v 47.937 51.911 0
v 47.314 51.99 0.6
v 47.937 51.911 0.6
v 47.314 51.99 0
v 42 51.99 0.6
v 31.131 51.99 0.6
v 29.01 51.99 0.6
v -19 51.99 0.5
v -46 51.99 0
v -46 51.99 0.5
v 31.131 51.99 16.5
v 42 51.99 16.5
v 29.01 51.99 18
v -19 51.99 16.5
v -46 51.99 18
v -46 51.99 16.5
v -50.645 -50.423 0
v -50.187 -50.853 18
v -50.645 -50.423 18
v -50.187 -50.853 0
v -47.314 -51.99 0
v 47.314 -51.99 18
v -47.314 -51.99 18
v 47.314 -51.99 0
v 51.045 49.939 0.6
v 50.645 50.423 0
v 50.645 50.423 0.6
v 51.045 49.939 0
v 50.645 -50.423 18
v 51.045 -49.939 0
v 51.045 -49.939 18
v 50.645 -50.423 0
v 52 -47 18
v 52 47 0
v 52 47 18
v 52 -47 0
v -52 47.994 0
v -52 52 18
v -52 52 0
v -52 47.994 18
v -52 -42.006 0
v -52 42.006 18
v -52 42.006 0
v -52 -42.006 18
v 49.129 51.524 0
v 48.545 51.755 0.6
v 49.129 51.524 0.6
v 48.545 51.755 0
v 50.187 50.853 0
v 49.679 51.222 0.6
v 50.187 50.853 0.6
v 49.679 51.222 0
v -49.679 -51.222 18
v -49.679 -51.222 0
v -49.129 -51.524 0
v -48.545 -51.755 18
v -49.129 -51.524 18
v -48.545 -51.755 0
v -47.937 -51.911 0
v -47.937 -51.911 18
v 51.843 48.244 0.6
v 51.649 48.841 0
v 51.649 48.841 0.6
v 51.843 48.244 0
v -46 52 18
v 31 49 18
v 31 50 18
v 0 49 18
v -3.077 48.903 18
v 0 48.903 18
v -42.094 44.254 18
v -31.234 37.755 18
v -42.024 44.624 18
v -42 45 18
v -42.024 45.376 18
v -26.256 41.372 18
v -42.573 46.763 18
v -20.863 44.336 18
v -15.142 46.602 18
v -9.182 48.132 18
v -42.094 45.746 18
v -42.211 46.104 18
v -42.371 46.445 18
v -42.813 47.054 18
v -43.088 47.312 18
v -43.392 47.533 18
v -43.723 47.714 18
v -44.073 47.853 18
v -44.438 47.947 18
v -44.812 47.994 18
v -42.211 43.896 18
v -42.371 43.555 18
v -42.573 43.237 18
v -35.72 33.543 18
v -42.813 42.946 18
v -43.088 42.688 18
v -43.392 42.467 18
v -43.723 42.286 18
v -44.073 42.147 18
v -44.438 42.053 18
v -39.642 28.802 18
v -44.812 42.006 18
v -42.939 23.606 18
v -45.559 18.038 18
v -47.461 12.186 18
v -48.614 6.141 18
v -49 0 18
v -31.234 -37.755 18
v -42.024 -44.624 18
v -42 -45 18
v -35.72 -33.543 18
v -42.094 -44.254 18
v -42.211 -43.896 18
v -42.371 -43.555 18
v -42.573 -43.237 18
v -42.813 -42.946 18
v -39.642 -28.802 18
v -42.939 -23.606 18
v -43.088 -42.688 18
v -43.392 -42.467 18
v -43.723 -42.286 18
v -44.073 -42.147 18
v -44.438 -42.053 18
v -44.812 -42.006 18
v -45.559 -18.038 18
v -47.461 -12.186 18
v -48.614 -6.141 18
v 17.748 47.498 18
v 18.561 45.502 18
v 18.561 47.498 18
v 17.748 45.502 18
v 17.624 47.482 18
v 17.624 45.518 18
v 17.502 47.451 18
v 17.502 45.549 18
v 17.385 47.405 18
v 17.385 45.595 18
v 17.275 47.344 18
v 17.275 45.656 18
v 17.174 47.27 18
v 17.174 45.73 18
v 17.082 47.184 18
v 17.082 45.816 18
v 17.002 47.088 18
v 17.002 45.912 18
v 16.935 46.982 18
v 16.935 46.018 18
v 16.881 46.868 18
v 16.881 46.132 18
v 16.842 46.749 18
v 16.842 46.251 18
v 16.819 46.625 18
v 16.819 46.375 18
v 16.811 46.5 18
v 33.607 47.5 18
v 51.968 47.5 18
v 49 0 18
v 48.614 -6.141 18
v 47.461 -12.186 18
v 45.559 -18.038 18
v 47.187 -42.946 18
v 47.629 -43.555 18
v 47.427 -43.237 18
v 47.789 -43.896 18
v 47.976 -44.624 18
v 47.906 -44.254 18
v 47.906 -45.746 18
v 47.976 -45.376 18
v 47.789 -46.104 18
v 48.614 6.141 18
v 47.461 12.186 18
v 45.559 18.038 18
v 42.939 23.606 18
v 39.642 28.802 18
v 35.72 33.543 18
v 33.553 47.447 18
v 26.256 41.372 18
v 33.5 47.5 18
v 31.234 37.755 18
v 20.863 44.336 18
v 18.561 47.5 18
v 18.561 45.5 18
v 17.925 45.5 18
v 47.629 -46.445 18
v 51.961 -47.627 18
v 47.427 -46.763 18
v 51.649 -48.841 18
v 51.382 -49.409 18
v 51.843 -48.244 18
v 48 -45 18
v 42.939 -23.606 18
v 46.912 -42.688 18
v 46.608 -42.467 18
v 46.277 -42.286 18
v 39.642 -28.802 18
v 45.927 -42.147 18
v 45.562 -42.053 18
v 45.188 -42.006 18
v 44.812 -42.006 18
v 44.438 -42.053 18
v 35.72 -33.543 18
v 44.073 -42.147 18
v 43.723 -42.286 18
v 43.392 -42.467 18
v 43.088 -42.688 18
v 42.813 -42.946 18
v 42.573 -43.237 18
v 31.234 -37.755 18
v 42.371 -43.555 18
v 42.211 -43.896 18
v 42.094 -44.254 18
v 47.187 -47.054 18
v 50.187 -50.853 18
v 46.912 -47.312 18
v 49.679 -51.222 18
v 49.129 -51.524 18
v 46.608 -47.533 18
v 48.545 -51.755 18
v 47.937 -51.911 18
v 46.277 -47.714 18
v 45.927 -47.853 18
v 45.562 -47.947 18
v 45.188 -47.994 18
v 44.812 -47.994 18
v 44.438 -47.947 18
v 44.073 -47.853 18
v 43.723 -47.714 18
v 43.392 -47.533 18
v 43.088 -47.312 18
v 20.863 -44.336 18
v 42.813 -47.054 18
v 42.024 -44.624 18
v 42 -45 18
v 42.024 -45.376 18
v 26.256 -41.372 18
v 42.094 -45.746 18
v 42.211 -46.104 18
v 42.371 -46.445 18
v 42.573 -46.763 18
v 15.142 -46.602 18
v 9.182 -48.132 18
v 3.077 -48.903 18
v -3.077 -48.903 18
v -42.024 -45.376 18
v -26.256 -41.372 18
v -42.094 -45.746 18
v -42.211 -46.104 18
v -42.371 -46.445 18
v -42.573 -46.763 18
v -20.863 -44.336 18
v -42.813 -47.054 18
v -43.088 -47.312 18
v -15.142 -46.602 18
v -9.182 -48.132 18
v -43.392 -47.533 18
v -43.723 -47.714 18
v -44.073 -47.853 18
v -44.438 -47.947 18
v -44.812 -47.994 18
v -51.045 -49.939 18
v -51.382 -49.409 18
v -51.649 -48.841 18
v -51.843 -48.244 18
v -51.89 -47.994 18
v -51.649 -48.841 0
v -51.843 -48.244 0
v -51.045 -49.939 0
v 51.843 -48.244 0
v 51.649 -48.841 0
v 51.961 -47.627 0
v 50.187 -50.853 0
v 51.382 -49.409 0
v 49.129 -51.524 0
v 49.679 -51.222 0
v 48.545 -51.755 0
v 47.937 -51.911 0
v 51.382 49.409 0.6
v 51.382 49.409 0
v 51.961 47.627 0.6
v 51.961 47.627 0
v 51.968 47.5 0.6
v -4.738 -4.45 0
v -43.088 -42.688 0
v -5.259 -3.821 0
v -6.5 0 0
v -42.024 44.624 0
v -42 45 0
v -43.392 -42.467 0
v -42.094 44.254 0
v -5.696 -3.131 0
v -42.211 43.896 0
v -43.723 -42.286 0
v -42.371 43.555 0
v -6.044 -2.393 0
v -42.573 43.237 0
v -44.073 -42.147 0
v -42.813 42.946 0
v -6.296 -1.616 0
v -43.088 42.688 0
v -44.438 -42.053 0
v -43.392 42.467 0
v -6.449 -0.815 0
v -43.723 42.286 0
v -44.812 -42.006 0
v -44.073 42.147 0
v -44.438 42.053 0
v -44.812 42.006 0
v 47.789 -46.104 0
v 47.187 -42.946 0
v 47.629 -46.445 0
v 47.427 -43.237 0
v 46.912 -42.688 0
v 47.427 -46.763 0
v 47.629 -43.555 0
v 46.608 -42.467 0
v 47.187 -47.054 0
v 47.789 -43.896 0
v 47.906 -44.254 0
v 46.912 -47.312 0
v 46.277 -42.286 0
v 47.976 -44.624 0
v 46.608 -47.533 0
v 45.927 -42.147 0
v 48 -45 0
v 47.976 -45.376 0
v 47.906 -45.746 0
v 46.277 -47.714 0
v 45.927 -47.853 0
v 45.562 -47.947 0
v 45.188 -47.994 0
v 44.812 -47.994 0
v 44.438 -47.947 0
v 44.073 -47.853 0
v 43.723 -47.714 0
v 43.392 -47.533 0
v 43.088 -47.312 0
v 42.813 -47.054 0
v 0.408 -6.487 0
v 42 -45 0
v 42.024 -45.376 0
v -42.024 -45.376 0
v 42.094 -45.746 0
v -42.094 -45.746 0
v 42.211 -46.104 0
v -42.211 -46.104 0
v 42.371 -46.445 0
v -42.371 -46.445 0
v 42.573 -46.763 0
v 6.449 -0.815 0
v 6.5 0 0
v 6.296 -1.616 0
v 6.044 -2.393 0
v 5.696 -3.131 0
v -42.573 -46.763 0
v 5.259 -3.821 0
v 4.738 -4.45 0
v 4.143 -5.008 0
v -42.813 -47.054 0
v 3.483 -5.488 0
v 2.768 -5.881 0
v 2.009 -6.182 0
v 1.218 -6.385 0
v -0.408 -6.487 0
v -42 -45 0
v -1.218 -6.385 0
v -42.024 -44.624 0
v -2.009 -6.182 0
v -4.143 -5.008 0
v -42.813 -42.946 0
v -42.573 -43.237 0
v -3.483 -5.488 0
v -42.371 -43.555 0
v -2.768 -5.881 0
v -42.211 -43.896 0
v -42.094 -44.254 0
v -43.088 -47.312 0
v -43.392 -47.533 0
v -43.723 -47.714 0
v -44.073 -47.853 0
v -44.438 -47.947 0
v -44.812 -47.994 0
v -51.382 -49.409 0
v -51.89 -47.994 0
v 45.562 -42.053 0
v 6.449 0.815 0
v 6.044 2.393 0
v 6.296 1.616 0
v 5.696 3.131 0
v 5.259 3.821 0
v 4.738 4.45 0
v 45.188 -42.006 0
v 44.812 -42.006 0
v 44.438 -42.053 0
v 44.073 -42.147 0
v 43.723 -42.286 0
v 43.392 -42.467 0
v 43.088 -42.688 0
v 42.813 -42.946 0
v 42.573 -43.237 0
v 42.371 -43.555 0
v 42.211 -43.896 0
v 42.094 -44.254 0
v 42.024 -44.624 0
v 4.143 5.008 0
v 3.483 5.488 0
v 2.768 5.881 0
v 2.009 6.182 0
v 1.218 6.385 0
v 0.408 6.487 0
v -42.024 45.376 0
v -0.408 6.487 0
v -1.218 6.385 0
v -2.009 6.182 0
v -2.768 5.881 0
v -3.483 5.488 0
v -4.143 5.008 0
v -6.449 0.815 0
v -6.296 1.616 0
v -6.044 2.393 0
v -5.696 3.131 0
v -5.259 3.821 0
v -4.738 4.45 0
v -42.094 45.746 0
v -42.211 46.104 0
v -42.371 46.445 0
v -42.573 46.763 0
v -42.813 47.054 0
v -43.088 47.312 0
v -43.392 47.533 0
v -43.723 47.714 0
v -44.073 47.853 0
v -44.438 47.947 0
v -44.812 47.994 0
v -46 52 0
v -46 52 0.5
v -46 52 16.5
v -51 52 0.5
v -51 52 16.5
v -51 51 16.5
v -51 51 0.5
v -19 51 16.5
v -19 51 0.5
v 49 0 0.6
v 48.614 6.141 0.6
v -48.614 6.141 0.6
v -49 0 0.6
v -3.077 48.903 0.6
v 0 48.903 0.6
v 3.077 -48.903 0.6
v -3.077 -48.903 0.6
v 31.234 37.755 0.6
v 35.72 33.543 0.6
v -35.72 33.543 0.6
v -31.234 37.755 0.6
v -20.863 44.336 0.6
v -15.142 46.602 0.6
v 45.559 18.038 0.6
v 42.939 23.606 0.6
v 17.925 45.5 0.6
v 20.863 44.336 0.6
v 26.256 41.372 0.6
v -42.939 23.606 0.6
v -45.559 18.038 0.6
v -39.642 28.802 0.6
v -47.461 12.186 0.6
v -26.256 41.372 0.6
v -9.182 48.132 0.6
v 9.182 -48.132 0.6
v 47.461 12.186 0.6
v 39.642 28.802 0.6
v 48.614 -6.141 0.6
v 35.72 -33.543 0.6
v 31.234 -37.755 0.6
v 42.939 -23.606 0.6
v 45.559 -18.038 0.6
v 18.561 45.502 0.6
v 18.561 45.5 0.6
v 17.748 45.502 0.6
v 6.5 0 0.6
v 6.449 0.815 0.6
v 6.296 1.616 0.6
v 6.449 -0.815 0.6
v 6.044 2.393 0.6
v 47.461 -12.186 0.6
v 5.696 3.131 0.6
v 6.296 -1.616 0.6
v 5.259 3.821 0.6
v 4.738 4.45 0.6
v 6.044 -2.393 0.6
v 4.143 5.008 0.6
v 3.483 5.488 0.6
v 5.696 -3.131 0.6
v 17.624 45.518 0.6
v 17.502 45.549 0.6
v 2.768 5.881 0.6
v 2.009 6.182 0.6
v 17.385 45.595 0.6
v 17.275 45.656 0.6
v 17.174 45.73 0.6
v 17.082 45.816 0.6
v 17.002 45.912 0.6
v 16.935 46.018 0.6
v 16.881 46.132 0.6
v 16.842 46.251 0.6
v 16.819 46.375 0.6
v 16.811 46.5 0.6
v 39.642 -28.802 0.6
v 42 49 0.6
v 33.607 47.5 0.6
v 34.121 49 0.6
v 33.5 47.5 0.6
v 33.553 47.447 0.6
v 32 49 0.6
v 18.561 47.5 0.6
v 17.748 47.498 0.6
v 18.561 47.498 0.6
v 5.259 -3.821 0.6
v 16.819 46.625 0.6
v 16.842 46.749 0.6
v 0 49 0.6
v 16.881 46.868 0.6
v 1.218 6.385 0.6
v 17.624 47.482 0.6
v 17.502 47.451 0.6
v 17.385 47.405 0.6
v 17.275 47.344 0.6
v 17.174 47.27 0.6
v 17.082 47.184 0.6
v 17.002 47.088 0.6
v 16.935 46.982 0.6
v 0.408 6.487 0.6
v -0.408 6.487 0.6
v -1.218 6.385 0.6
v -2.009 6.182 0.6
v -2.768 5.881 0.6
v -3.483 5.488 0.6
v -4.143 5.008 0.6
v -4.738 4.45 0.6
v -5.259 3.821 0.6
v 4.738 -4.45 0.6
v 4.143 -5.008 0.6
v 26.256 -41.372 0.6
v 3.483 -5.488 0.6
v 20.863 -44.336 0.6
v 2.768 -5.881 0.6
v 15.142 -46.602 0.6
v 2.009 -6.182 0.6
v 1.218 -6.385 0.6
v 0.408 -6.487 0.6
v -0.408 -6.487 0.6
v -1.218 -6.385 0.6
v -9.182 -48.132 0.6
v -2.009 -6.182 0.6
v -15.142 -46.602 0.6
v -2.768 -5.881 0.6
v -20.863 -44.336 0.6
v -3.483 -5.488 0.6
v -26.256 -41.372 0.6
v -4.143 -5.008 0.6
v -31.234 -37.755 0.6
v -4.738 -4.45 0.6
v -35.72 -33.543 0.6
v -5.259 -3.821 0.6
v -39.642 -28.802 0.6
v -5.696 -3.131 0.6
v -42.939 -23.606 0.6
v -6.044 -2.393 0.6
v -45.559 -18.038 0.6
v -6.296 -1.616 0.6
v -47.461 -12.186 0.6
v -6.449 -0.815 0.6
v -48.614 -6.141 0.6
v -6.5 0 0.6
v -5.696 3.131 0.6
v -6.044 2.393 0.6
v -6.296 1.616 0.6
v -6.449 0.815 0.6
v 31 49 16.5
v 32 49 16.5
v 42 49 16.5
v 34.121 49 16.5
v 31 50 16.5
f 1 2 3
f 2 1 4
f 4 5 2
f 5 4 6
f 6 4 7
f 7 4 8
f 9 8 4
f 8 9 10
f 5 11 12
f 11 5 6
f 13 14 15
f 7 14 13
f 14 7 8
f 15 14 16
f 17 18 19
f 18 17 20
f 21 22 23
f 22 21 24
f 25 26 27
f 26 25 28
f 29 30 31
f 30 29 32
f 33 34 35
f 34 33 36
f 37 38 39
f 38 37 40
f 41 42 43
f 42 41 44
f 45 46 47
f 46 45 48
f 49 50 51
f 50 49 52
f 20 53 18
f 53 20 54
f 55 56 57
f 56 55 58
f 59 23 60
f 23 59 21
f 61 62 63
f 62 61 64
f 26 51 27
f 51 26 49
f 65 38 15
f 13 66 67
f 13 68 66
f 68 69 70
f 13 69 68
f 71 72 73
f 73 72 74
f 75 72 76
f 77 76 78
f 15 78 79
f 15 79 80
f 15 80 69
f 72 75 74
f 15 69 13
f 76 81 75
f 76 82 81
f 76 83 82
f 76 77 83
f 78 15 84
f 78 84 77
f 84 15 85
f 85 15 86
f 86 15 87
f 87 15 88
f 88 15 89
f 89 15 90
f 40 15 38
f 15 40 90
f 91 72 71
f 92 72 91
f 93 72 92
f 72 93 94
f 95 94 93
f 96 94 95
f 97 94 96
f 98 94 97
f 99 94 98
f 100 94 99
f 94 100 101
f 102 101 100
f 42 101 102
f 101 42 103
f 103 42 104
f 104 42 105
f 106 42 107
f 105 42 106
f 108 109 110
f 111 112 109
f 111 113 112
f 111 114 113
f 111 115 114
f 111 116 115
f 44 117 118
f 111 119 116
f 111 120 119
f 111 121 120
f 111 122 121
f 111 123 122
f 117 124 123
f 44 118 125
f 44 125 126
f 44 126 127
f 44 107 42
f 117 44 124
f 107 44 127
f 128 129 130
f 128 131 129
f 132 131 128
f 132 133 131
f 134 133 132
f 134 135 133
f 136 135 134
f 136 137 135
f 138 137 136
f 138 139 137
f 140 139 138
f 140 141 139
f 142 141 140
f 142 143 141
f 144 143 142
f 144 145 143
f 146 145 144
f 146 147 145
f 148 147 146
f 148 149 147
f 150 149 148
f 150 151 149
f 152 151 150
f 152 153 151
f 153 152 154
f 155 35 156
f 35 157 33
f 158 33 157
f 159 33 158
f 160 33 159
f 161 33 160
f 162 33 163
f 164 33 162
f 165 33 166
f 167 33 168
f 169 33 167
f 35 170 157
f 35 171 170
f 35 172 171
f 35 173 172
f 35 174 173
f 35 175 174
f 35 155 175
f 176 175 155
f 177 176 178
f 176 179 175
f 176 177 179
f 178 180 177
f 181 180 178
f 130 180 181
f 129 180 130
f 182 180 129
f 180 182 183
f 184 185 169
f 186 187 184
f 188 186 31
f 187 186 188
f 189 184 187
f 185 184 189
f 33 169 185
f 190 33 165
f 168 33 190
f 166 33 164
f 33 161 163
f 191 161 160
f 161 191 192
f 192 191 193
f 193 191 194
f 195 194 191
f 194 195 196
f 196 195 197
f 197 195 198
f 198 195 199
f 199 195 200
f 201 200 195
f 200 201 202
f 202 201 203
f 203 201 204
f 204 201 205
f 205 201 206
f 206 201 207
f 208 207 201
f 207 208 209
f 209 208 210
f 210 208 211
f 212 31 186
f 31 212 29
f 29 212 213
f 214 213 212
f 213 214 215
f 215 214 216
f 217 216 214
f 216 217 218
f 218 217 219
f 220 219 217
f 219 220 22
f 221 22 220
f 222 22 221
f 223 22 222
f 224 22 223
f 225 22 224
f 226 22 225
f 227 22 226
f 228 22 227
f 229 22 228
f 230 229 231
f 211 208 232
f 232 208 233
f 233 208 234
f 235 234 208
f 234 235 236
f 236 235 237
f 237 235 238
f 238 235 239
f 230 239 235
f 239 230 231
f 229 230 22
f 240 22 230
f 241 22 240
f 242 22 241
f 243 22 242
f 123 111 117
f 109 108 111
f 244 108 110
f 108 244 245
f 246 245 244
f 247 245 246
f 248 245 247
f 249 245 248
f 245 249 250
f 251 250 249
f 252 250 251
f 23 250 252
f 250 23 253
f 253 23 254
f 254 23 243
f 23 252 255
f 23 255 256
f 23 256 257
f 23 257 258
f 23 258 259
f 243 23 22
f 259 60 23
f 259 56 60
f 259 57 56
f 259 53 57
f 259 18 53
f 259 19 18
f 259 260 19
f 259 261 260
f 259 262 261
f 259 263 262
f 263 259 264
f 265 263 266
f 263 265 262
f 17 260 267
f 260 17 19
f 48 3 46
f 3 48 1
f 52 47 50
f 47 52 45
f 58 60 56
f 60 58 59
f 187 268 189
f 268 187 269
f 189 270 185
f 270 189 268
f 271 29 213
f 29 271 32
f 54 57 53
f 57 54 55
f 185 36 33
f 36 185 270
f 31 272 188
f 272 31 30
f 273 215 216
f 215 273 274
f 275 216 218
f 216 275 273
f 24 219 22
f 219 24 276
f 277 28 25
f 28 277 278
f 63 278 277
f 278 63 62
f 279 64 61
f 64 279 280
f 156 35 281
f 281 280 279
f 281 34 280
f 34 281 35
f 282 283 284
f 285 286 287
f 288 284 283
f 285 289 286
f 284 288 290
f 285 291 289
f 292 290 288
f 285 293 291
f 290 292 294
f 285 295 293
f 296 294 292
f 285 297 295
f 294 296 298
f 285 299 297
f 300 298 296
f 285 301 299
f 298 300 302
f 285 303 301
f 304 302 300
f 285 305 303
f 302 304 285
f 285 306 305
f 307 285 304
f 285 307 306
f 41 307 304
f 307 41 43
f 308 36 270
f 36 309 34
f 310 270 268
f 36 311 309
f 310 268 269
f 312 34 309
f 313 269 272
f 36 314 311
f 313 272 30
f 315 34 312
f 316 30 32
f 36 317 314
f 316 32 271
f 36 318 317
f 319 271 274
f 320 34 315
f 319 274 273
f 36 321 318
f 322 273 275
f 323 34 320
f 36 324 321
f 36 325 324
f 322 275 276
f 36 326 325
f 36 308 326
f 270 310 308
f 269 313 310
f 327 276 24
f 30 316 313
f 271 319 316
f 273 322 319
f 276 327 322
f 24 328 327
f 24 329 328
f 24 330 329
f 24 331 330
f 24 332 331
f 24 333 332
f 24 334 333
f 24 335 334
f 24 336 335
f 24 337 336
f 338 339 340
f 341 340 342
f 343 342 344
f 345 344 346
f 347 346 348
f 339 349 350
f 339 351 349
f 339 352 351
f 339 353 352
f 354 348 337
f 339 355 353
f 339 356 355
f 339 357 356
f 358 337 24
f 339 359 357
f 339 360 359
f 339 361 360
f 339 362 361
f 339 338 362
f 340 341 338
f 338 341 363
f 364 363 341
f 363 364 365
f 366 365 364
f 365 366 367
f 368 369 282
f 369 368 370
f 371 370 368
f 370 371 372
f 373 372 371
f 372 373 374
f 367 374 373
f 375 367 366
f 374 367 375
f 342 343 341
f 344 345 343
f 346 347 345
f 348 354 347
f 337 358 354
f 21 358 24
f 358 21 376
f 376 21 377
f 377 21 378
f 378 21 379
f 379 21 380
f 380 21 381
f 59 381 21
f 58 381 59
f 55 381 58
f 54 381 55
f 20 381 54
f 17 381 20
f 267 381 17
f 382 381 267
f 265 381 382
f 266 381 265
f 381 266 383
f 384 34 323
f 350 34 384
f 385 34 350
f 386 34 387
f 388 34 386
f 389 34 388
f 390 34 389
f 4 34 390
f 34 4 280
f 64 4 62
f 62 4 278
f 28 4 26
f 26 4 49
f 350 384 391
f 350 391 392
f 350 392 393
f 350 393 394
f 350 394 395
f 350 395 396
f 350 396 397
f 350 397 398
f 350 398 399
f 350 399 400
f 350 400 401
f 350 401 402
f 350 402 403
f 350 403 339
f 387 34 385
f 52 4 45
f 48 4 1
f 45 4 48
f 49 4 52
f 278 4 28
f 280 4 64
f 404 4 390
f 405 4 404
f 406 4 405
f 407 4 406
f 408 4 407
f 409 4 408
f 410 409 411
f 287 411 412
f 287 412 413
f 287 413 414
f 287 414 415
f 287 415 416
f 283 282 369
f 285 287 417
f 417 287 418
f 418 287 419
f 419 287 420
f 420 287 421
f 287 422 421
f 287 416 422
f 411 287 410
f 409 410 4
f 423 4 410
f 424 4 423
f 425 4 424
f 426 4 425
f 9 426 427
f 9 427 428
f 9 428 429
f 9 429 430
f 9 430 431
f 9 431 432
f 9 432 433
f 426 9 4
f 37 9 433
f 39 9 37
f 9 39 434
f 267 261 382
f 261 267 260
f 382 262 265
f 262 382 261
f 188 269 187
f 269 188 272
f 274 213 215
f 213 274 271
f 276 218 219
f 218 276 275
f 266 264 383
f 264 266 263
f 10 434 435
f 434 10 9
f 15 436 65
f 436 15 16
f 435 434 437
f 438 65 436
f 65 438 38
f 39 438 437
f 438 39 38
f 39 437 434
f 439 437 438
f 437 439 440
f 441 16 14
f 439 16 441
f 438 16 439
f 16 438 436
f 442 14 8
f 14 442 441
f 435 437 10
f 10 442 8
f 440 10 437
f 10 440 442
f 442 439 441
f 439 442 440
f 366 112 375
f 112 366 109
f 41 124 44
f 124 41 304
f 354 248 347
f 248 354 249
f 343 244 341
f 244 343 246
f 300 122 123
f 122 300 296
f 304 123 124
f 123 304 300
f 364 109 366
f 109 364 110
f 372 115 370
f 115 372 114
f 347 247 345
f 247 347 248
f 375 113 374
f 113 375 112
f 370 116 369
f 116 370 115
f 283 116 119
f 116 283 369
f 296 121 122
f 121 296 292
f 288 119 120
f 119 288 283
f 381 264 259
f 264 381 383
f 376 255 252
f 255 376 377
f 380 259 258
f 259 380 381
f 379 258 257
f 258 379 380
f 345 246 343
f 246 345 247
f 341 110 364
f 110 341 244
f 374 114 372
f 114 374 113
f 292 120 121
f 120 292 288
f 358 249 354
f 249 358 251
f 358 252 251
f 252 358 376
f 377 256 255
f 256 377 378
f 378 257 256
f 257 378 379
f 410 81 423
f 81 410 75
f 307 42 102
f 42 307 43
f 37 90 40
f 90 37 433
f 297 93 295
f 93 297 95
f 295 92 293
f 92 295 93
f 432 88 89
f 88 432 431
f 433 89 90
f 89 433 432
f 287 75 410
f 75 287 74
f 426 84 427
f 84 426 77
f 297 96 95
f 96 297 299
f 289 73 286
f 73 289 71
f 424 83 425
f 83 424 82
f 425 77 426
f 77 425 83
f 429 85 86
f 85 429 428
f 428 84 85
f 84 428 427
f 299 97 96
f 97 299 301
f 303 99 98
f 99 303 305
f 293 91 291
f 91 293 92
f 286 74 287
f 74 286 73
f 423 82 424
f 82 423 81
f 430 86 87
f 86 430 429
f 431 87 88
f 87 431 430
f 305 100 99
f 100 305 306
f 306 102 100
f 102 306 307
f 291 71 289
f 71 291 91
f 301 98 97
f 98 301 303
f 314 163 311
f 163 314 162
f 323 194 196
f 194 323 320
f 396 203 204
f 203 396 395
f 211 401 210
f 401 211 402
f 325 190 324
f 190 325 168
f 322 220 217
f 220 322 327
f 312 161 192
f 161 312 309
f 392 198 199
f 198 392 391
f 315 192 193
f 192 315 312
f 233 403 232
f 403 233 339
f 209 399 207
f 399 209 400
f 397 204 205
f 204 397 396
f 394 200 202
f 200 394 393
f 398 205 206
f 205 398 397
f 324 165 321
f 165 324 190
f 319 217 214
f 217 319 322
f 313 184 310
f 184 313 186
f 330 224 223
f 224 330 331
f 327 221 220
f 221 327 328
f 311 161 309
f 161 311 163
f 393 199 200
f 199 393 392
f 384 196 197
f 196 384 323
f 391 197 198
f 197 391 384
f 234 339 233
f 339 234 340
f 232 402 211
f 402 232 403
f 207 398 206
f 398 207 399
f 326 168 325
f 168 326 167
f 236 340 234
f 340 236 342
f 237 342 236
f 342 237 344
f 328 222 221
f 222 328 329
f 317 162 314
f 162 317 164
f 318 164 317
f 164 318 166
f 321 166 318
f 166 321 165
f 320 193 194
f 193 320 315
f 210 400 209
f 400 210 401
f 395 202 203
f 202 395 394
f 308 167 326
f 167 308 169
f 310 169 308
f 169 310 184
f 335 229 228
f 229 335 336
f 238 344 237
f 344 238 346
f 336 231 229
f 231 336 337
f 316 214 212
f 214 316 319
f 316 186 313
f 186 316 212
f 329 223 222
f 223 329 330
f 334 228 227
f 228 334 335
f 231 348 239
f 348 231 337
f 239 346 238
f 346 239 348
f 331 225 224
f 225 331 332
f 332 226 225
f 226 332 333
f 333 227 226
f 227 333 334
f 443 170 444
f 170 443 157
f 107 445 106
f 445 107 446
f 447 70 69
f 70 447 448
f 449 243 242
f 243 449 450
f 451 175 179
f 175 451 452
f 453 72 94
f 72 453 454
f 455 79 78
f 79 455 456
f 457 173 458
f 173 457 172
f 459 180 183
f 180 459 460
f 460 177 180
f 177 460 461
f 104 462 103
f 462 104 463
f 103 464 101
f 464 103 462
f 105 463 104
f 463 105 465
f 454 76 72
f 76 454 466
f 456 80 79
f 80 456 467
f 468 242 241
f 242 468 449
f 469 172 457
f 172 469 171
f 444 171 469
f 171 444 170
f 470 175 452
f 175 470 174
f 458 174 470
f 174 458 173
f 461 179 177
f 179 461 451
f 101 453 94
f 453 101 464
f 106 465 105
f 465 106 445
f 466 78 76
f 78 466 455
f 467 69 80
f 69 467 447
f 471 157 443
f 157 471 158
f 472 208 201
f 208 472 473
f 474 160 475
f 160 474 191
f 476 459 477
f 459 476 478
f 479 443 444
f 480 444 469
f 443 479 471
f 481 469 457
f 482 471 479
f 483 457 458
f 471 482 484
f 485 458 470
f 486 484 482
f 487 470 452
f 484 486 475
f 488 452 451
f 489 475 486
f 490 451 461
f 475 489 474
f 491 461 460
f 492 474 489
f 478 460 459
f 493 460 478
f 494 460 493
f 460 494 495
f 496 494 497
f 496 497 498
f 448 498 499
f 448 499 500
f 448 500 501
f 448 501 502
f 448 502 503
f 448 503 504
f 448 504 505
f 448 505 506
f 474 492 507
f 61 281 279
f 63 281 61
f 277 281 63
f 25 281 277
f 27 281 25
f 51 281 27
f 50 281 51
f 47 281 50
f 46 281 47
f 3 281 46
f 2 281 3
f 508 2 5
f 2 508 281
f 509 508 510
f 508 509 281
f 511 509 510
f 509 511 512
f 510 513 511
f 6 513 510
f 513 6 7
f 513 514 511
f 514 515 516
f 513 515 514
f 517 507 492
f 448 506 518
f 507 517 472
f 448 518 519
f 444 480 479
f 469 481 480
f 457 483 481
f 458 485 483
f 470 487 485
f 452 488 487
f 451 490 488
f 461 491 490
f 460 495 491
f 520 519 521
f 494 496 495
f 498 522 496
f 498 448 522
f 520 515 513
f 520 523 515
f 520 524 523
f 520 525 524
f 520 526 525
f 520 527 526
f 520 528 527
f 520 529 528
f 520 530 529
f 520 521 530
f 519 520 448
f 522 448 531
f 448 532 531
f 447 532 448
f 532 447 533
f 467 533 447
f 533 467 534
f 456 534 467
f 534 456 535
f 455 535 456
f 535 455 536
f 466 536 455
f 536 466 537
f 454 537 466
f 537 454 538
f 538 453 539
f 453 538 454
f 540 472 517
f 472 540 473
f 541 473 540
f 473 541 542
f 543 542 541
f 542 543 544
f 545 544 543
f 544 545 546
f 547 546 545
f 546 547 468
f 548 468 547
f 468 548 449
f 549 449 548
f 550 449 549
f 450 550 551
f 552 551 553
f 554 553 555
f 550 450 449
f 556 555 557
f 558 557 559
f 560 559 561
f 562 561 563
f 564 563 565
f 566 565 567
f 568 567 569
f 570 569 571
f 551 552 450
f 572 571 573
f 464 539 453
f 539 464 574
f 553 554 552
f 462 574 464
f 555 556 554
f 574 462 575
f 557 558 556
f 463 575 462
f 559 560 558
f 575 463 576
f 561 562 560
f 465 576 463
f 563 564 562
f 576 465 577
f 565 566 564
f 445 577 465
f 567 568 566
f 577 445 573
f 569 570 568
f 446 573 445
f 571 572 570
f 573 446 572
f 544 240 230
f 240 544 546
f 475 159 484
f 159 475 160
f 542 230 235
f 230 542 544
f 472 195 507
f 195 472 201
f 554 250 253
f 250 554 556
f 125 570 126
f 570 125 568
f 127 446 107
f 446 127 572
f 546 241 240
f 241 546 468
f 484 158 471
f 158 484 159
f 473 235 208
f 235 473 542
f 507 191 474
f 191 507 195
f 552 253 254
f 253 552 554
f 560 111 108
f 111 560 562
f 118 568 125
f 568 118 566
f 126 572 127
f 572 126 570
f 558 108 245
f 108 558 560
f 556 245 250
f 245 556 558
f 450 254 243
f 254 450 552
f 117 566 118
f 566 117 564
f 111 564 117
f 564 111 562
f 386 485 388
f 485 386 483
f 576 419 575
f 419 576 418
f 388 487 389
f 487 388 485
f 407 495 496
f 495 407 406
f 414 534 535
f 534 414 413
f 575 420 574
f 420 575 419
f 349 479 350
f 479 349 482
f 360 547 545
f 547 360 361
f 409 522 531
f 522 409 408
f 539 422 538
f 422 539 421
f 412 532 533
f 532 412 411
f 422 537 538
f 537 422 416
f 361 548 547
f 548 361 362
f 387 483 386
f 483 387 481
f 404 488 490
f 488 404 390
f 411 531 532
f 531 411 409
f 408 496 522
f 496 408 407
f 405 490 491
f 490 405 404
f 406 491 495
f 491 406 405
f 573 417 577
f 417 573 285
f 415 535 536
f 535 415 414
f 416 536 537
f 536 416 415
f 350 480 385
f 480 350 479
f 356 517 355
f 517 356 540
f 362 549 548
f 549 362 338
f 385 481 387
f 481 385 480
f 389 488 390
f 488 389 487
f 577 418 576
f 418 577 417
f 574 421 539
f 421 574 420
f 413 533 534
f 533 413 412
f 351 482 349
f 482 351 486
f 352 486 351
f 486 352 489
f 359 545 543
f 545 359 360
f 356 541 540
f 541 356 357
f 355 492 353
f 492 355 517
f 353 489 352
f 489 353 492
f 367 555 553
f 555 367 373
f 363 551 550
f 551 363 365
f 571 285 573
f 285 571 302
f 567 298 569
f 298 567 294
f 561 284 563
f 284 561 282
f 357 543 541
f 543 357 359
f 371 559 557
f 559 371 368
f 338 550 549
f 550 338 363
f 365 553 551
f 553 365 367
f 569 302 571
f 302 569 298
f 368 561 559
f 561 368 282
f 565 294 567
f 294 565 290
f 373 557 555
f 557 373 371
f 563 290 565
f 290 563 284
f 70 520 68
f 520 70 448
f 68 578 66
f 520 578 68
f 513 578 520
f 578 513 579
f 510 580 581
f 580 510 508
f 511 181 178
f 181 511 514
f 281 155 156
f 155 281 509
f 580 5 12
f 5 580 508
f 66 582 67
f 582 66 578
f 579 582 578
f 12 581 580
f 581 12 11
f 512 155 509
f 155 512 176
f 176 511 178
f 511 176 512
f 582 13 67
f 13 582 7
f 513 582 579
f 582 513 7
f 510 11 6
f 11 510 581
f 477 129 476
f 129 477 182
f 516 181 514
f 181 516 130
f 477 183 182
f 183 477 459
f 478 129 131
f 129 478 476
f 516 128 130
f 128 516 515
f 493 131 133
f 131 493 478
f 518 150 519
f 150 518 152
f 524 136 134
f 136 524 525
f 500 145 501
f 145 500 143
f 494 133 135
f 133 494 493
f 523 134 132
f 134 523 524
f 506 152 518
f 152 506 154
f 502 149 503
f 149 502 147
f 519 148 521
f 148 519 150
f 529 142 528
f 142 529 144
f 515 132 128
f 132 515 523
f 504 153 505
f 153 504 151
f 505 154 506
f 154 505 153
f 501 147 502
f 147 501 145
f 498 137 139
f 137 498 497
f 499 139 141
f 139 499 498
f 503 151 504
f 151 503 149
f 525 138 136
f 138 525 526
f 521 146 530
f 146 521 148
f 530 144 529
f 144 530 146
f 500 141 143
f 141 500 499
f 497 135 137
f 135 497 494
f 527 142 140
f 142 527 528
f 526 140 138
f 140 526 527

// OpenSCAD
$fn = 50;


union() {
	difference() {
		union() {
			translate(v = [0, 0, 0]) {
				rotate(a = [0, 0, 0]) {
					hull() {
						translate(v = [-47.0000000000, 47.0000000000, 0]) {
							rotate(a = [0, 0, 0]) {
								translate(v = [0, 0, 0]) {
									rotate(a = [0, 0, 0]) {
										cylinder(h = 18, r = 5);
									}
								}
							}
						}
						translate(v = [47.0000000000, 47.0000000000, 0]) {
							rotate(a = [0, 0, 0]) {
								translate(v = [0, 0, 0]) {
									rotate(a = [0, 0, 0]) {
										cylinder(h = 18, r = 5);
									}
								}
							}
						}
						translate(v = [-47.0000000000, -47.0000000000, 0]) {
							rotate(a = [0, 0, 0]) {
								translate(v = [0, 0, 0]) {
									rotate(a = [0, 0, 0]) {
										cylinder(h = 18, r = 5);
									}
								}
							}
						}
						translate(v = [47.0000000000, -47.0000000000, 0]) {
							rotate(a = [0, 0, 0]) {
								translate(v = [0, 0, 0]) {
									rotate(a = [0, 0, 0]) {
										cylinder(h = 18, r = 5);
									}
								}
							}
						}
					}
				}
			}
			translate(v = [-52.0000000000, 46.0000000000, 0]) {
				rotate(a = [0, 0, 0]) {
					cube(size = [6, 6, 18]);
				}
			}
		}
		union() {
			#translate(v = [-51.0000000000, 51.0000000000, 0.5000000000]) {
				rotate(a = [0, 0, 0]) {
					cube(size = [32, 1, 16]);
				}
			}
			translate(v = [-52.5000000000, -45.0000000000, -125]) {
				rotate(a = [0, 0, 0]) {
					hull() {
						translate(v = [7.5000000000, 0, 0]) {
							rotate(a = [0, 0, 0]) {
								translate(v = [0, 0, 0]) {
									rotate(a = [0, 0, 0]) {
										cylinder(h = 250, r = 3.0000000000);
									}
								}
							}
						}
						translate(v = [-7.5000000000, 0, 0]) {
							rotate(a = [0, 0, 0]) {
								translate(v = [0, 0, 0]) {
									rotate(a = [0, 0, 0]) {
										cylinder(h = 250, r = 3.0000000000);
									}
								}
							}
						}
					}
				}
			}
			translate(v = [-52.5000000000, 45.0000000000, -125]) {
				rotate(a = [0, 0, 0]) {
					hull() {
						translate(v = [7.5000000000, 0, 0]) {
							rotate(a = [0, 0, 0]) {
								translate(v = [0, 0, 0]) {
									rotate(a = [0, 0, 0]) {
										cylinder(h = 250, r = 3.0000000000);
									}
								}
							}
						}
						translate(v = [-7.5000000000, 0, 0]) {
							rotate(a = [0, 0, 0]) {
								translate(v = [0, 0, 0]) {
									rotate(a = [0, 0, 0]) {
										cylinder(h = 250, r = 3.0000000000);
									}
								}
							}
						}
					}
				}
			}
			translate(v = [45.0000000000, -45.0000000000, -125.0000000000]) {
				rotate(a = [0, 0, 0]) {
					cylinder(h = 250, r = 3.0000000000);
				}
			}
			translate(v = [0, 0, 0.6000000000]) {
				rotate(a = [0, 0, 0]) {
					cylinder(h = 20.4000000000, r = 49.0000000000);
				}
			}
			translate(v = [0, 0, -9.0000000000]) {
				rotate(a = [0, 0, 0]) {
					cylinder(h = 18, r = 6.5000000000);
				}
			}
			translate(v = [0.0000000000, 47.5000000000, 0.6000000000]) {
				rotate(a = [0, 0, 0]) {
					cube(size = [52.0000000000, 1.5000000000, 20.4000000000]);
				}
			}
			translate(v = [42.0000000000, 47.5000000000, 0.6000000000]) {
				rotate(a = [0, 0, 0]) {
					cube(size = [10, 4.5000000000, 20.4000000000]);
				}
			}
			translate(v = [31.0000000000, 47.5000000000, 16.5000000000]) {
				rotate(a = [0, 0, 0]) {
					cube(size = [21, 4.5000000000, 1.5000000000]);
				}
			}
			translate(v = [28.2500000000, 52.7500000000, 0.6000000000]) {
				rotate(a = [0, 0, -45]) {
					cube(size = [7.5000000000, 1.5000000000, 20.4000000000]);
				}
			}
			translate(v = [11.0610000000, 45.5000000000, 0.6000000000]) {
				rotate(a = [0, 0, 0]) {
					cube(size = [7.5000000000, 2, 17.4000000000]);
				}
			}
		}
	}
	union() {
		translate(v = [20.3110000000, 46.5000000000, 0]) {
			rotate(a = [0, 0, 0]) {
				hull() {
					translate(v = [2.5000000000, 0, 0]) {
						rotate(a = [0, 0, 0]) {
							#translate(v = [0, 0, 0]) {
								rotate(a = [0, 0, 0]) {
									cylinder(h = 18, r = 1.0000000000);
								}
							}
						}
					}
					translate(v = [-2.5000000000, 0, 0]) {
						rotate(a = [0, 0, 0]) {
							#translate(v = [0, 0, 0]) {
								rotate(a = [0, 0, 0]) {
									cylinder(h = 18, r = 1.0000000000);
								}
							}
						}
					}
				}
			}
		}
	}
}
